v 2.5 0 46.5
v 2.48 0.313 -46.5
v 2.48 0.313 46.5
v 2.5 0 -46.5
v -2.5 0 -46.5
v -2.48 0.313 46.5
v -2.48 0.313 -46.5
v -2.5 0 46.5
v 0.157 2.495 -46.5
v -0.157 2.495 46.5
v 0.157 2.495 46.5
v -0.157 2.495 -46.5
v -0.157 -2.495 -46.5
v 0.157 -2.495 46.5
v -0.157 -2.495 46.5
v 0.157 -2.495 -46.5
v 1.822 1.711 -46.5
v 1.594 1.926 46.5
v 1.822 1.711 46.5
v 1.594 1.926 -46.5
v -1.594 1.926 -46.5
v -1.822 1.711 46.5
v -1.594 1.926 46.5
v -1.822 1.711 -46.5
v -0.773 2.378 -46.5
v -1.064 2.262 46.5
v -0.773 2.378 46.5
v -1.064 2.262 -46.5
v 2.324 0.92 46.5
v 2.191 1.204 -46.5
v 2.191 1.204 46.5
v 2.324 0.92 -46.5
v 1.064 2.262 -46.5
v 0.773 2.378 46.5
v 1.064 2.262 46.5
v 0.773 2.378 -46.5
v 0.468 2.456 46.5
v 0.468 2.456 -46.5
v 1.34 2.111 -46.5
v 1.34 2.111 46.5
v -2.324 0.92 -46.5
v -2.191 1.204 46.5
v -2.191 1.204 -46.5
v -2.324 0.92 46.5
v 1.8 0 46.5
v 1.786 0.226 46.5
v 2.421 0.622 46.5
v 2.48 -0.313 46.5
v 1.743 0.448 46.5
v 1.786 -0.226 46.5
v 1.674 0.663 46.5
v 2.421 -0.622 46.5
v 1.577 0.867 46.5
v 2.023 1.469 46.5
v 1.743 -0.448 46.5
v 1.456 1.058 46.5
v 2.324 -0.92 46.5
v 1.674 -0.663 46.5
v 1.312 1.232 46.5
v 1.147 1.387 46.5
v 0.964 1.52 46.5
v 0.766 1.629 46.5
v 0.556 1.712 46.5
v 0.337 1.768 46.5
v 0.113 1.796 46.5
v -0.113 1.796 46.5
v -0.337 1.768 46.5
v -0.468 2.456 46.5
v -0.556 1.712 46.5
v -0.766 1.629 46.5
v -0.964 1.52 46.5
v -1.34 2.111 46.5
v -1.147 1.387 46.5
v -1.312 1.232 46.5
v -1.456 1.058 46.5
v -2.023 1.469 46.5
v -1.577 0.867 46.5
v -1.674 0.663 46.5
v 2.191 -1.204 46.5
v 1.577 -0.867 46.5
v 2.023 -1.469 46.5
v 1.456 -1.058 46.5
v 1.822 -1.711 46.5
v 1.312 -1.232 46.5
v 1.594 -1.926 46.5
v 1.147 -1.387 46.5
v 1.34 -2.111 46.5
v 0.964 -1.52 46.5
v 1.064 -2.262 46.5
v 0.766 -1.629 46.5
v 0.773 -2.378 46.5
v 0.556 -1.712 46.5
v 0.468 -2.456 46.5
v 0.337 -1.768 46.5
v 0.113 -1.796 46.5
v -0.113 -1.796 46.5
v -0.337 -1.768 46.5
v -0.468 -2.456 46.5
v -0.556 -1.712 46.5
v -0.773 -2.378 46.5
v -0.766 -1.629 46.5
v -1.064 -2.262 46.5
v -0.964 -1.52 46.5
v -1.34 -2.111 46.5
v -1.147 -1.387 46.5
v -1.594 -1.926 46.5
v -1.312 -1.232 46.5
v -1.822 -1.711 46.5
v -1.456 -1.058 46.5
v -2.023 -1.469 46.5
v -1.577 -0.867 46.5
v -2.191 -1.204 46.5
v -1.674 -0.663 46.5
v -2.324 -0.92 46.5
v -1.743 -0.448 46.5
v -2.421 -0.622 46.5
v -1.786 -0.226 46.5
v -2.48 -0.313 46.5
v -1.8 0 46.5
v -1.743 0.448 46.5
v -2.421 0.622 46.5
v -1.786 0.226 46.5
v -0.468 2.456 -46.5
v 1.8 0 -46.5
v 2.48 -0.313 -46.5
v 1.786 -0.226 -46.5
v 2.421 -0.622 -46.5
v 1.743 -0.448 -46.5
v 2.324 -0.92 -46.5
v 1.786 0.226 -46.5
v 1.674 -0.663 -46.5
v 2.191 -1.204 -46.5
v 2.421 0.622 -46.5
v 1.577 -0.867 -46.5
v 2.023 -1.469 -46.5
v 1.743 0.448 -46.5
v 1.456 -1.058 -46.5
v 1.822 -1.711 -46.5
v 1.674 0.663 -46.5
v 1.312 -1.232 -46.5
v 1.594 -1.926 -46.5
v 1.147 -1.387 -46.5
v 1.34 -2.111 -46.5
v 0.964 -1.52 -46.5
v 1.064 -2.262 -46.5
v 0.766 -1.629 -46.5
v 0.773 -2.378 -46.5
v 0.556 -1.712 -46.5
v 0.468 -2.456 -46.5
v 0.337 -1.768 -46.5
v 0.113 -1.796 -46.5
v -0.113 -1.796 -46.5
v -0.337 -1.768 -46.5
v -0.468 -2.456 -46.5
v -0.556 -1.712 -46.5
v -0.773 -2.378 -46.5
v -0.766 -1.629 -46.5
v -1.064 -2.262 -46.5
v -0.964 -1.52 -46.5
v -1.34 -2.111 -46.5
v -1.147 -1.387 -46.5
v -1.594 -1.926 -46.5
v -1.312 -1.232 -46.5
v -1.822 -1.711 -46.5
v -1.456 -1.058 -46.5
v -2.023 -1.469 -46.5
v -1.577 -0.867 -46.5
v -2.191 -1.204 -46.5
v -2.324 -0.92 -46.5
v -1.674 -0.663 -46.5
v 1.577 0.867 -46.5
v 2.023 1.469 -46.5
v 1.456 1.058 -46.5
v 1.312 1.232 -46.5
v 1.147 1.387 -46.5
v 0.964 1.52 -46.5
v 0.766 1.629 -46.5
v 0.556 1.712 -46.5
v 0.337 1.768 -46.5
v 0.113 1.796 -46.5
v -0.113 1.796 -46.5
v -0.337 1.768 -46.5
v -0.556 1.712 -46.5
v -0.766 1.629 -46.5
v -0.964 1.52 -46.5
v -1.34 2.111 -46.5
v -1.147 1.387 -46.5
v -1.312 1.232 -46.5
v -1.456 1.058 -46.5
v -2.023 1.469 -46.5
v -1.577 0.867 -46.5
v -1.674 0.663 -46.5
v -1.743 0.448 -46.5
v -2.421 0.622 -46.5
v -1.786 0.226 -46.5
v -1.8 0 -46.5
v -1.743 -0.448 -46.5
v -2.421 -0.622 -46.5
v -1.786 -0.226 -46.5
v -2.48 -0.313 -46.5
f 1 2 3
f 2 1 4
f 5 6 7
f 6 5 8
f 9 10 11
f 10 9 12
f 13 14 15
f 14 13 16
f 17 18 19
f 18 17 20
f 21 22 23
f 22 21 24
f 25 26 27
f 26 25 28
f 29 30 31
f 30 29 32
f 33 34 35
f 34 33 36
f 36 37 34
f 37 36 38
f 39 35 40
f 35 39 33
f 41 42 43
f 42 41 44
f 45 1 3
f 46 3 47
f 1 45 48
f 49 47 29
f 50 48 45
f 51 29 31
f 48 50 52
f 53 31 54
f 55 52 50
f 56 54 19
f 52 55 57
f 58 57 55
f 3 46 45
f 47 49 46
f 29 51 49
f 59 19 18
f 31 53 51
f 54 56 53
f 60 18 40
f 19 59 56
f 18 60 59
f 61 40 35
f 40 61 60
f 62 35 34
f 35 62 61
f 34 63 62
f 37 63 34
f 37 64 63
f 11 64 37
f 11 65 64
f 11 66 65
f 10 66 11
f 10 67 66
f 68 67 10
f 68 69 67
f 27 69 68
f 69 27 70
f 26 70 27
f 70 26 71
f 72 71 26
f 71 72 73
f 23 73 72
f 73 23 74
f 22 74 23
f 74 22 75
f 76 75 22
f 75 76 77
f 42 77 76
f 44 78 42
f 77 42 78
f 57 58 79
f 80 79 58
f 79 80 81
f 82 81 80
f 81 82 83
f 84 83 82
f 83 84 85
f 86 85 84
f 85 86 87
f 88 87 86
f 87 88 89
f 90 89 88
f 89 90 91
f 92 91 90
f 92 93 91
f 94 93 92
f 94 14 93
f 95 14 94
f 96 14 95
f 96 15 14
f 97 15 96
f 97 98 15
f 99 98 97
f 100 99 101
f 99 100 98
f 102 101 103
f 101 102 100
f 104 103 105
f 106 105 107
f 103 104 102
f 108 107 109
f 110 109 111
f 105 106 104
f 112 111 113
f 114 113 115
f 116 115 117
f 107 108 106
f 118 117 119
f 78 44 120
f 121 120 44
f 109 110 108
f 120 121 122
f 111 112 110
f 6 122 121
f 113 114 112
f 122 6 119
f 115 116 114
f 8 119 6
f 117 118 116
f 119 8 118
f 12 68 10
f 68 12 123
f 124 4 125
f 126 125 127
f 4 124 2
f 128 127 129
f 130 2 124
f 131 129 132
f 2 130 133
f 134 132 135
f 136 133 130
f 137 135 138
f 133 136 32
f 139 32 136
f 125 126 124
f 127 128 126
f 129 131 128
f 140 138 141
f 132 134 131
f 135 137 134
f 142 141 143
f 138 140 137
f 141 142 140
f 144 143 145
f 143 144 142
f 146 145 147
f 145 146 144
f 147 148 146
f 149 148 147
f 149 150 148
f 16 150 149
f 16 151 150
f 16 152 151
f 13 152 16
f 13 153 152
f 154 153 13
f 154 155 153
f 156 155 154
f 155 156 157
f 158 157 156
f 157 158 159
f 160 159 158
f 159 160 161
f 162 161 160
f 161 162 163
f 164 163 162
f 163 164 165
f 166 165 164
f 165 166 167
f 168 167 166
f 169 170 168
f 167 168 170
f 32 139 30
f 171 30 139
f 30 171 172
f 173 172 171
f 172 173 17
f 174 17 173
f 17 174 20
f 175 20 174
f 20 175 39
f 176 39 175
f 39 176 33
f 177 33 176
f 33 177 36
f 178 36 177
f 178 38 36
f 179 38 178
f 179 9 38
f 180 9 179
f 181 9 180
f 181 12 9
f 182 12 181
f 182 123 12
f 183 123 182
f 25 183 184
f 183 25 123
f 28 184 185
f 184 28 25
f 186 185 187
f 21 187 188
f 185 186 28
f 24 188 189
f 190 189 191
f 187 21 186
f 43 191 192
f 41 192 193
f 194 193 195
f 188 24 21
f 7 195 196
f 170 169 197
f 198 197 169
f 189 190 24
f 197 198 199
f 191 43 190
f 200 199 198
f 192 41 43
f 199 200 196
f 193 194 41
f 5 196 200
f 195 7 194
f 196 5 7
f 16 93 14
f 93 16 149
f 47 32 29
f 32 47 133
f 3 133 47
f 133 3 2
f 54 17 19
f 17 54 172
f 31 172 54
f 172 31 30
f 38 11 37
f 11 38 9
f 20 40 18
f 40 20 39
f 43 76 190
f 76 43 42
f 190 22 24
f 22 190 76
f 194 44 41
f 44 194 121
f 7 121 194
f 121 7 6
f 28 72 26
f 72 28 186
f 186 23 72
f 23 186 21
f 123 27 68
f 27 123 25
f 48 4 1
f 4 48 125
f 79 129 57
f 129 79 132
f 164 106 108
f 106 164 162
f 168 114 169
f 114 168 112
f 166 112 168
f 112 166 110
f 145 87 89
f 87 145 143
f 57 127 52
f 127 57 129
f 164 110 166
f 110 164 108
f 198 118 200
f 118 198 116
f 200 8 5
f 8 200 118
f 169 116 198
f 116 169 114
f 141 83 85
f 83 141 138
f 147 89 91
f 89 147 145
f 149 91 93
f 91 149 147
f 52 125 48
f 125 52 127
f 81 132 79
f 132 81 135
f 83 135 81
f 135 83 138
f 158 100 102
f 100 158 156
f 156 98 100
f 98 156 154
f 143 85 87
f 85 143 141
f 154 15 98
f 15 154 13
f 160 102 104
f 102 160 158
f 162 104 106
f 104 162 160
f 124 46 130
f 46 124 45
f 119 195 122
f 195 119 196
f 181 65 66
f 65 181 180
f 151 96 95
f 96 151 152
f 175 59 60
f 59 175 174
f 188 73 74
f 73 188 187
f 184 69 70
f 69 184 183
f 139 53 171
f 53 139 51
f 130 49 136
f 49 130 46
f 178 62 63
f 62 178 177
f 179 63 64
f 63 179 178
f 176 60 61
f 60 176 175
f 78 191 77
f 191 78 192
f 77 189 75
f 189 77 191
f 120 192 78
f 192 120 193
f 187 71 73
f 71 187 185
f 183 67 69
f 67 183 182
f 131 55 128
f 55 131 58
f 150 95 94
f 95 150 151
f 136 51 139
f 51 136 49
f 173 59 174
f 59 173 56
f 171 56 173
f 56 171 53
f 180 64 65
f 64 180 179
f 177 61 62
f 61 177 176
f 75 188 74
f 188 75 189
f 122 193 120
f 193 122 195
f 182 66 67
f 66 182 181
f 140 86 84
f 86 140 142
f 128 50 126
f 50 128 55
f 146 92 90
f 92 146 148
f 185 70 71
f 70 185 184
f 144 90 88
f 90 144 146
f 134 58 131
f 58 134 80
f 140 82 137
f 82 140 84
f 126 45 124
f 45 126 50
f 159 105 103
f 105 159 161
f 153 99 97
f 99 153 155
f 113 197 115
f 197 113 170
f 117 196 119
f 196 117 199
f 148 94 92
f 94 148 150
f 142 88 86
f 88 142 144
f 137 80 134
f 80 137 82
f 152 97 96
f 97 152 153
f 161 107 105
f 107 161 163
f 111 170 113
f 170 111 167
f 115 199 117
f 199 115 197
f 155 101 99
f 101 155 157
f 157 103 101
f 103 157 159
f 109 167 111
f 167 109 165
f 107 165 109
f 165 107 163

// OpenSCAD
$fn = 50;


difference() {
	union() {
		translate(v = [0, 0, -46.5000000000]) {
			cylinder(h = 93, r = 2.5000000000);
		}
	}
	union() {
		translate(v = [0, 0, -100.0000000000]) {
			cylinder(h = 200, r = 1.8000000000);
		}
	}
}
